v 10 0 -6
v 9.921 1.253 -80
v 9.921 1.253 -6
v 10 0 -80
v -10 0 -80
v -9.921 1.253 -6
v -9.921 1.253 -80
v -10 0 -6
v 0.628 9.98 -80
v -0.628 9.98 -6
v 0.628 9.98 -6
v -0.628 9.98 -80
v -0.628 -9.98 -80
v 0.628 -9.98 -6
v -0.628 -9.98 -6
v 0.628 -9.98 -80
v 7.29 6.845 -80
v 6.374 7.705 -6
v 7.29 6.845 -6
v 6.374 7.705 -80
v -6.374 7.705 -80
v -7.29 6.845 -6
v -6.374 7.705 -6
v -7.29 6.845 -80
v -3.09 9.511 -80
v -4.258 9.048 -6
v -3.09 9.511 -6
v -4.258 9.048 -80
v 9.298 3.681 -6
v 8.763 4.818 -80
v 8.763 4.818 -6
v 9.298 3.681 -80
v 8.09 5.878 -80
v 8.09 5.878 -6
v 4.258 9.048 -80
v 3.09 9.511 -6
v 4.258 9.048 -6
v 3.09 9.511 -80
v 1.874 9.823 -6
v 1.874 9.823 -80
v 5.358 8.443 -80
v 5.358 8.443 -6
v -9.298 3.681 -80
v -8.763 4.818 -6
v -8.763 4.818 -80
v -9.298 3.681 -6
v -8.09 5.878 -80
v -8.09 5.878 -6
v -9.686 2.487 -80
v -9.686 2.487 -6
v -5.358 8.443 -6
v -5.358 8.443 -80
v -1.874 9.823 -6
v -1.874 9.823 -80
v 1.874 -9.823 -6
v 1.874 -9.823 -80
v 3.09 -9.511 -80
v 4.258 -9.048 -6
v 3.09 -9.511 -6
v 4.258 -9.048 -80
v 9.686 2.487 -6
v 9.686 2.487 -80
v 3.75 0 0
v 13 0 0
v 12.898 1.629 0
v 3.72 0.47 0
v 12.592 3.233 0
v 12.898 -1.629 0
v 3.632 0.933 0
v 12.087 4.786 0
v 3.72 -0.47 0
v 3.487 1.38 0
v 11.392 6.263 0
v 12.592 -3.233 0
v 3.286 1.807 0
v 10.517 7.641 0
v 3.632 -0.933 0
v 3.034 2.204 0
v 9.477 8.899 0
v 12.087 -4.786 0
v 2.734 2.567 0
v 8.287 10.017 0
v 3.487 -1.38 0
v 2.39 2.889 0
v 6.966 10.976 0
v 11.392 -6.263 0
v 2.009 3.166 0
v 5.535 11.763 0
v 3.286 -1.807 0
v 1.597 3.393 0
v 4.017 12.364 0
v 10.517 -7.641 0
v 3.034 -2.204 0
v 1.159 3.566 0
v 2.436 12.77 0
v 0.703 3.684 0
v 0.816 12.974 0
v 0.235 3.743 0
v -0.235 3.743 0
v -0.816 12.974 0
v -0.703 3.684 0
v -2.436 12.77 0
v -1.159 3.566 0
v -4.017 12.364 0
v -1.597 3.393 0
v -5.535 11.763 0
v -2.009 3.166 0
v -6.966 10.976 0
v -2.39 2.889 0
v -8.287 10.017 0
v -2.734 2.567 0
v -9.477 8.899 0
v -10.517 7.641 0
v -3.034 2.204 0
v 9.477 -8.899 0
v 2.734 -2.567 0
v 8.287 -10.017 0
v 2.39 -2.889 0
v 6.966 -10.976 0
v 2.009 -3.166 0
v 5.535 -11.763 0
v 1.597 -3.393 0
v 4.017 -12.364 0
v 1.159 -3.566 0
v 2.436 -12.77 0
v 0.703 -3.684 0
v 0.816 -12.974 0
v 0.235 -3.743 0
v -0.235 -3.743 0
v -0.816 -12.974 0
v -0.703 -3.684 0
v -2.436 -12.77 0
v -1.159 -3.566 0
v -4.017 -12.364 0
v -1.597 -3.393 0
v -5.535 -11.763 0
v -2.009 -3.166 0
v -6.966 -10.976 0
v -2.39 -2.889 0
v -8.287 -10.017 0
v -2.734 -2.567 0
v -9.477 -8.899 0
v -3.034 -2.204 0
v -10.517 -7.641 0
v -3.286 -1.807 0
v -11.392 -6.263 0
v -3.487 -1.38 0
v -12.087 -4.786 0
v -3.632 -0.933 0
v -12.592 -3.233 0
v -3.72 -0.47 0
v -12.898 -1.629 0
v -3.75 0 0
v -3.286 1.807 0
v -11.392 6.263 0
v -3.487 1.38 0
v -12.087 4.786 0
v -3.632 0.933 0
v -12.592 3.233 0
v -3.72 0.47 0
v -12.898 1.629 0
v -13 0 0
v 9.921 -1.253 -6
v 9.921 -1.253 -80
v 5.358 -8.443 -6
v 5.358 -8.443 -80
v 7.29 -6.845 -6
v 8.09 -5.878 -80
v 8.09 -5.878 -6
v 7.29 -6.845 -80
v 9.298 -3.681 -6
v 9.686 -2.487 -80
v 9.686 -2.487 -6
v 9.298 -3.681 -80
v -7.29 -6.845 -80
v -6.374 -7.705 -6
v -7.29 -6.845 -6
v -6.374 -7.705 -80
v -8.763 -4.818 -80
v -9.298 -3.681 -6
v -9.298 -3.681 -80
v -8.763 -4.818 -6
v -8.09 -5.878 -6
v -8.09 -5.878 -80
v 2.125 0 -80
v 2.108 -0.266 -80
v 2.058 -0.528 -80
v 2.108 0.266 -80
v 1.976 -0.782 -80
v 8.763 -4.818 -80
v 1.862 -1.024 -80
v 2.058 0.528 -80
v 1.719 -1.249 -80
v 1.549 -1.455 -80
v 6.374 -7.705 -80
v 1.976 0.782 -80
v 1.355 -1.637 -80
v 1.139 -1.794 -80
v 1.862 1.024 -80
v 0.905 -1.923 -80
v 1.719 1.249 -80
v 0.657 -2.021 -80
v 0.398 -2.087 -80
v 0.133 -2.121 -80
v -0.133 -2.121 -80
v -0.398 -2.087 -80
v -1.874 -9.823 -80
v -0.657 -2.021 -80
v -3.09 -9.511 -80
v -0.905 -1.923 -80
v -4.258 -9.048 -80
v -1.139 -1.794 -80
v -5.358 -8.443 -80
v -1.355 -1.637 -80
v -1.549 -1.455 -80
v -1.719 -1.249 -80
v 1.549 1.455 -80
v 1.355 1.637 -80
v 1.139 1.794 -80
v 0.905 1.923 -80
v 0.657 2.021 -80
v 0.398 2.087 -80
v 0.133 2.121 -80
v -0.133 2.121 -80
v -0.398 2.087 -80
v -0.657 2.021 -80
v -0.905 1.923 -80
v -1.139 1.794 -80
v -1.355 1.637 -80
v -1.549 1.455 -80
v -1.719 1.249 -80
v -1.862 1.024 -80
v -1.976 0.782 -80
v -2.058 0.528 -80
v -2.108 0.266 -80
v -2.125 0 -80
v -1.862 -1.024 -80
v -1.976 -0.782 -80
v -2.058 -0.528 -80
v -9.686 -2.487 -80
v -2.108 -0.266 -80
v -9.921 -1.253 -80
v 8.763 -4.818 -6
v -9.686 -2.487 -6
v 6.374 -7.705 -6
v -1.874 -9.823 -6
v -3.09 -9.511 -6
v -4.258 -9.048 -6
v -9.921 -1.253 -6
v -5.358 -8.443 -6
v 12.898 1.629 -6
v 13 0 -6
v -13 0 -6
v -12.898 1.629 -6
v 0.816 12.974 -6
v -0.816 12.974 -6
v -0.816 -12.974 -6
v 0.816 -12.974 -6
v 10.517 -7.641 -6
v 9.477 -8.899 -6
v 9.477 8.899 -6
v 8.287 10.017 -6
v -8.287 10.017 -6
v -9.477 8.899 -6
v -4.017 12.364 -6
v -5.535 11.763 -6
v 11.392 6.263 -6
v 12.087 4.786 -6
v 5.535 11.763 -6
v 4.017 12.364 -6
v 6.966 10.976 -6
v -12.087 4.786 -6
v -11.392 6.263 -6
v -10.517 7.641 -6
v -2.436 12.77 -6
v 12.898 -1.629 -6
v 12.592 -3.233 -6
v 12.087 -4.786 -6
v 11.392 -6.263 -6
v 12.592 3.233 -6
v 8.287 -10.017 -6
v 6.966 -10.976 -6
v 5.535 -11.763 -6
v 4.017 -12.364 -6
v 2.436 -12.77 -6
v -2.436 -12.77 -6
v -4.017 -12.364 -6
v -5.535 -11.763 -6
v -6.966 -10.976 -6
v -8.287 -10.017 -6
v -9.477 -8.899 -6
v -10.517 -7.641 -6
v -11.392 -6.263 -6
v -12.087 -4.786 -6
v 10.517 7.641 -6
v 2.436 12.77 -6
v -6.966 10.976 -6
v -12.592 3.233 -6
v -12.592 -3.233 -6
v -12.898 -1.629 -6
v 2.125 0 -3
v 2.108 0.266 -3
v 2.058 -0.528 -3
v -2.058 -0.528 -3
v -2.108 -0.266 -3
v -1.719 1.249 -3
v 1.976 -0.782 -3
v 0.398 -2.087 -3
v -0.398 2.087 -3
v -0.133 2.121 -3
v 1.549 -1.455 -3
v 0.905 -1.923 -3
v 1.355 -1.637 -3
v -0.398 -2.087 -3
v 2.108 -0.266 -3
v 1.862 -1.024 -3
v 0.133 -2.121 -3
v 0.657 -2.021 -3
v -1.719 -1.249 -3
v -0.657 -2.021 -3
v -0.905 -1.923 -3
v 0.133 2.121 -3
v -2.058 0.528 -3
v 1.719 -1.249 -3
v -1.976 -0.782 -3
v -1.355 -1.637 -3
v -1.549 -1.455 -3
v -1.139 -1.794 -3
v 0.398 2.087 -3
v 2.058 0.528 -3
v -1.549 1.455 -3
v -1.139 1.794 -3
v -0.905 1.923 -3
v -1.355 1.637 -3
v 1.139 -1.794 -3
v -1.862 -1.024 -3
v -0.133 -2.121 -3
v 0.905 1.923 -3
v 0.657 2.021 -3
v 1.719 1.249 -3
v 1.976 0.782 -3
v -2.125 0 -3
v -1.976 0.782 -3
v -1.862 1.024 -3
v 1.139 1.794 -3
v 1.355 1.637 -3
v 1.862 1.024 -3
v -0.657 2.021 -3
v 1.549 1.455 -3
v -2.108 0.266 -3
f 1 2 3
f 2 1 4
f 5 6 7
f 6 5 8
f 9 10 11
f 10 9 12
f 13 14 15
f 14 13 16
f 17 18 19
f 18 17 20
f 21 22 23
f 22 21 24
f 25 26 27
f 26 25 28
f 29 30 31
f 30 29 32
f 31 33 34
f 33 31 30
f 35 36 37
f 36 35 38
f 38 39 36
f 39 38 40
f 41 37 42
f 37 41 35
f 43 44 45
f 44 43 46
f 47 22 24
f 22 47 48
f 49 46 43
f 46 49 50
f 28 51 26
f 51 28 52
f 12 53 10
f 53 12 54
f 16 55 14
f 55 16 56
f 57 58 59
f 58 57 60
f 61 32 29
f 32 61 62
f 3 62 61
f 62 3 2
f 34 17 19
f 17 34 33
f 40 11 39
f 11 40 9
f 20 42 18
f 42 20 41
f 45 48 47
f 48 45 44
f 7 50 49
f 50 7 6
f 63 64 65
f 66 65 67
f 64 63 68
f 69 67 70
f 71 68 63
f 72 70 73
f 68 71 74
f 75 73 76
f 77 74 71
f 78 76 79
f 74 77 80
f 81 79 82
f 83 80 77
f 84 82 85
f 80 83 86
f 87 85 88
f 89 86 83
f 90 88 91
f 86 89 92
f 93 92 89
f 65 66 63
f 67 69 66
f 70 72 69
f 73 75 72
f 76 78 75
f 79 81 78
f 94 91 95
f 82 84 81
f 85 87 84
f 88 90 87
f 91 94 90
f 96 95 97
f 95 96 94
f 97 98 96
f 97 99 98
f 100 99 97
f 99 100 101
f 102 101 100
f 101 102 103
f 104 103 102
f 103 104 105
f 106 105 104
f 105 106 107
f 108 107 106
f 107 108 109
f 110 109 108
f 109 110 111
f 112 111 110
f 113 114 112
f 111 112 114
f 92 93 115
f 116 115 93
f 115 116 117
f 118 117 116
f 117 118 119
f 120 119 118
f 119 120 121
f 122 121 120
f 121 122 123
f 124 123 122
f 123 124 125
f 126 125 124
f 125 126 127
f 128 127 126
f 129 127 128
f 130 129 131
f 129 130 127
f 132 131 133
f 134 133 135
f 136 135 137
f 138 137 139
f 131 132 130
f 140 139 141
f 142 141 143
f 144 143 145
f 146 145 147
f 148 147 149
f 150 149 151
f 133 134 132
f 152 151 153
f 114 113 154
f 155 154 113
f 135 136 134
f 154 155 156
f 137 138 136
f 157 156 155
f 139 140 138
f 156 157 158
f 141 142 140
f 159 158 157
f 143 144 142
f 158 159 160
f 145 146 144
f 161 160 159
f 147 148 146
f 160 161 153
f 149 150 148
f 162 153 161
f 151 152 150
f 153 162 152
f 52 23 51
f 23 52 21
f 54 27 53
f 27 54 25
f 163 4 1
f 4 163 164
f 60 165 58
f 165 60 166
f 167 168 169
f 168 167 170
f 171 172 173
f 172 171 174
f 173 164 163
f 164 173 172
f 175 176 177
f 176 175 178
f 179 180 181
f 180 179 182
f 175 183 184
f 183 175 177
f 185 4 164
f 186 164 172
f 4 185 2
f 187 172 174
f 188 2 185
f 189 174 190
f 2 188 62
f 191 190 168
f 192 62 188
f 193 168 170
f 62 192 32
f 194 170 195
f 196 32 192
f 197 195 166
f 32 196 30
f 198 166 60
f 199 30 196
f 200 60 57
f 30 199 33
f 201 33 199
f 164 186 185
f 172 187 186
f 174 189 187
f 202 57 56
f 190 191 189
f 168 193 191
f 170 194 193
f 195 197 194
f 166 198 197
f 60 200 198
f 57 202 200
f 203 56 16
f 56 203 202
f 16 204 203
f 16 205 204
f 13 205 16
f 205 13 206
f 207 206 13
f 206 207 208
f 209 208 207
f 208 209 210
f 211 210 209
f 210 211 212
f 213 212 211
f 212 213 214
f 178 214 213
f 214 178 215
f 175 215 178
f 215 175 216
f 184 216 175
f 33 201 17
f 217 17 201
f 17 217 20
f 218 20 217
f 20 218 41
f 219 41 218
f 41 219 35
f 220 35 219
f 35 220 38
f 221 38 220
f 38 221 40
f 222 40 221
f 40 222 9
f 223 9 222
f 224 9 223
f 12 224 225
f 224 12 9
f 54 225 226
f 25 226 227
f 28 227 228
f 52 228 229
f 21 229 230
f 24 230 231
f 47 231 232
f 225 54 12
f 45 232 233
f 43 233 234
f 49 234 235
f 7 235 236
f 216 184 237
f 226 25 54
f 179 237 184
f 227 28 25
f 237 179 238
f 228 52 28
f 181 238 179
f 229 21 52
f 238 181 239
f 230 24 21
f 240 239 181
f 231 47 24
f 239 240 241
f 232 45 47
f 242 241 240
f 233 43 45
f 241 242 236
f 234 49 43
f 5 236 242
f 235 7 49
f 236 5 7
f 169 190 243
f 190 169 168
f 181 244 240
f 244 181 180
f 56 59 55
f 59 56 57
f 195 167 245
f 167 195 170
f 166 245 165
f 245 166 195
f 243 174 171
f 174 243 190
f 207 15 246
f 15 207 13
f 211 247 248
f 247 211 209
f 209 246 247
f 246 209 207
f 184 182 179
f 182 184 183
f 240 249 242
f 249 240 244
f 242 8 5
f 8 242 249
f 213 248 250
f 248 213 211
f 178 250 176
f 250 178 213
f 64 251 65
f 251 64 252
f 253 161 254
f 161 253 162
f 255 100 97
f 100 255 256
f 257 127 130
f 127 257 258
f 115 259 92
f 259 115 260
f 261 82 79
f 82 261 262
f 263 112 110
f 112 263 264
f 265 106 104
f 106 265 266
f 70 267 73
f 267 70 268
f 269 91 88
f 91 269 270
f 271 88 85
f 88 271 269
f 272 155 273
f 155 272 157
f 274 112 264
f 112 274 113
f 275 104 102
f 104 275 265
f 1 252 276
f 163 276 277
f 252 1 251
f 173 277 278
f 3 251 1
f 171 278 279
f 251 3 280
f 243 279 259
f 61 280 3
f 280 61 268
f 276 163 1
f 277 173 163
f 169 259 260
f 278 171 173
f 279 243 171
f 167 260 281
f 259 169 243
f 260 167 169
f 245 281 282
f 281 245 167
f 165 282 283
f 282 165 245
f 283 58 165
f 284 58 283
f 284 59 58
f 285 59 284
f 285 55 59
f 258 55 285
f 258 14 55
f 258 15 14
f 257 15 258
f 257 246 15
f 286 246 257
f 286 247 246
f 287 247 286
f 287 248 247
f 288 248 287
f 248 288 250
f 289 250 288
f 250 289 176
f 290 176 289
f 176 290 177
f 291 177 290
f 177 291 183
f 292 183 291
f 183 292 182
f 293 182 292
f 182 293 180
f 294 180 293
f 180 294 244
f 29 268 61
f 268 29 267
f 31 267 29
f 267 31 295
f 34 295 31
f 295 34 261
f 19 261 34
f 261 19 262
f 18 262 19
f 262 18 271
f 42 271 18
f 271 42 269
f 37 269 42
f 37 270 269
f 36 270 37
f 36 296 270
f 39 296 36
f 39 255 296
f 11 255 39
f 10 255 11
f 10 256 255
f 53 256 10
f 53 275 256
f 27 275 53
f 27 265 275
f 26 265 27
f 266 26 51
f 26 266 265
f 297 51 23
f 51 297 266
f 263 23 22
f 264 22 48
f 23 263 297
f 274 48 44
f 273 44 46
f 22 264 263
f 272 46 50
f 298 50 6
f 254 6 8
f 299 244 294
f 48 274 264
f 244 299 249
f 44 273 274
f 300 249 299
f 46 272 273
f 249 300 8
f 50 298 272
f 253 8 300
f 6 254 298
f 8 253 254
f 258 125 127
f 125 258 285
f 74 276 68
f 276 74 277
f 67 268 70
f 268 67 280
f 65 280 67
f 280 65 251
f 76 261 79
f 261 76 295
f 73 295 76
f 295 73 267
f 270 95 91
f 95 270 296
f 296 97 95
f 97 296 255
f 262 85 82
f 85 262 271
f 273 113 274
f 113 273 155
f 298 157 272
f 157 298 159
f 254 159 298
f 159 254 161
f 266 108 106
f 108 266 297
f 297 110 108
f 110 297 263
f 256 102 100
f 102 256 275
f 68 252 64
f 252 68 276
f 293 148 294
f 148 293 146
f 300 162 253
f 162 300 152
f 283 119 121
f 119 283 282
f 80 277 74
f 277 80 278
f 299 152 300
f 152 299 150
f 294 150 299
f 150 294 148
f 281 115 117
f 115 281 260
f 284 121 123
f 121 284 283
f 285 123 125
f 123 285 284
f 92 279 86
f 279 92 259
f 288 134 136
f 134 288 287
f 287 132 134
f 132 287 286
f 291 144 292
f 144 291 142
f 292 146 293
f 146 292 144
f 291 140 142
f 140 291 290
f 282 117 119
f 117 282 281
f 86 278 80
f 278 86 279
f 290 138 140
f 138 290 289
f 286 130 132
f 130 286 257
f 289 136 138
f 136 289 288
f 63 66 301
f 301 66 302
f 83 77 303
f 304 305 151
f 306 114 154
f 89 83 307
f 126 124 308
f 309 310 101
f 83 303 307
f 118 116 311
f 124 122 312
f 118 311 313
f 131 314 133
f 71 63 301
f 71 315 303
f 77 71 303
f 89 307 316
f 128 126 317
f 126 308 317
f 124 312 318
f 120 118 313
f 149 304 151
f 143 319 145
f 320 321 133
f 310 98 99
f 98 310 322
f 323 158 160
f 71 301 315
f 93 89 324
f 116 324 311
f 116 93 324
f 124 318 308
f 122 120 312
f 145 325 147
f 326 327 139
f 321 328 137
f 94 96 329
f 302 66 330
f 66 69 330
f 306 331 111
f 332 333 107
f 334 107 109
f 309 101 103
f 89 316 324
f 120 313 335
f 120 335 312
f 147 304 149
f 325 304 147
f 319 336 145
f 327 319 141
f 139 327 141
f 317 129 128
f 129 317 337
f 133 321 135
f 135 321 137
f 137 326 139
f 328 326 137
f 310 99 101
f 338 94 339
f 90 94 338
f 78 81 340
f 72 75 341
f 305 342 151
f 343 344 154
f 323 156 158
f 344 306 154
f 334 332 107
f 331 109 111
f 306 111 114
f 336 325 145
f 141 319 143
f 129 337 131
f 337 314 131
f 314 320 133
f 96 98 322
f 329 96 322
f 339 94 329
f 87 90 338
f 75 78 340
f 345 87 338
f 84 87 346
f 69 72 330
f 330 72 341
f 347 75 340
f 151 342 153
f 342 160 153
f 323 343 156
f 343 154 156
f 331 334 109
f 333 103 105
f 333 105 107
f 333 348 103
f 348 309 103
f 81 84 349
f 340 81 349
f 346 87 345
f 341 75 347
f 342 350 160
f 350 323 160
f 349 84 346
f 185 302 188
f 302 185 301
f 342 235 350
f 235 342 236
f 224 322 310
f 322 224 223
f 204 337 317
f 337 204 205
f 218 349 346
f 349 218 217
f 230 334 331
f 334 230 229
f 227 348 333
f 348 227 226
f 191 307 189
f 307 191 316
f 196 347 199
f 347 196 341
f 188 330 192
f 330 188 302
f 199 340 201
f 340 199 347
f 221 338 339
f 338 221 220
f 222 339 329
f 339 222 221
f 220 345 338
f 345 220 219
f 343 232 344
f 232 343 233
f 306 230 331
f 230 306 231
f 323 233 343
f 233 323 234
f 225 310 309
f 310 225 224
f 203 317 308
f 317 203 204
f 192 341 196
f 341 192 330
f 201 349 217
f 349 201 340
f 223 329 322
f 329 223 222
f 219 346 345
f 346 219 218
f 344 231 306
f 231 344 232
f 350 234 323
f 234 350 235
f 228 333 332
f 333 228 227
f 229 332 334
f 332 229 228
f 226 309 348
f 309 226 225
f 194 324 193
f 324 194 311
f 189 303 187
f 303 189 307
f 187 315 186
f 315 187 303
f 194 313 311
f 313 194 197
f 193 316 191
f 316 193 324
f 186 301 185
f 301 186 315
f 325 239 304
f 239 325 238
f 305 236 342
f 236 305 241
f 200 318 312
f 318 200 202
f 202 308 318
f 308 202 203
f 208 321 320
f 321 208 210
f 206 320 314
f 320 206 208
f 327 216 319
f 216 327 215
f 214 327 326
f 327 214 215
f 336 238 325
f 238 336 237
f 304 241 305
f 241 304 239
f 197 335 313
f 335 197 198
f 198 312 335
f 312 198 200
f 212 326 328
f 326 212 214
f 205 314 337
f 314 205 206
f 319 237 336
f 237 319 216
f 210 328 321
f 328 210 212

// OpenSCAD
$fn = 50;


difference() {
	union() {
		translate(v = [0, 0, -80.0000000000]) {
			cylinder(h = 80, r = 10.0000000000);
		}
		translate(v = [0, 0, -6.0000000000]) {
			cylinder(h = 6, r = 13.0000000000);
		}
	}
	union() {
		translate(v = [0, 0, 0]) {
			rotate(a = [0, 0, 0]) {
				difference() {
					union() {
						#translate(v = [0, 0, -80.0000000000]) {
							cylinder(h = 80, r = 2.0000000000);
						}
						#translate(v = [0, 0, -3]) {
							cylinder(h = 3, r1 = 2.1250000000, r2 = 3.7500000000);
						}
						#translate(v = [0, 0, -80.0000000000]) {
							cylinder(h = 80, r = 2.1250000000);
						}
						#translate(v = [0, 0, -80.0000000000]) {
							cylinder(h = 80, r = 2.0000000000);
						}
					}
					union();
				}
			}
		}
	}
}
